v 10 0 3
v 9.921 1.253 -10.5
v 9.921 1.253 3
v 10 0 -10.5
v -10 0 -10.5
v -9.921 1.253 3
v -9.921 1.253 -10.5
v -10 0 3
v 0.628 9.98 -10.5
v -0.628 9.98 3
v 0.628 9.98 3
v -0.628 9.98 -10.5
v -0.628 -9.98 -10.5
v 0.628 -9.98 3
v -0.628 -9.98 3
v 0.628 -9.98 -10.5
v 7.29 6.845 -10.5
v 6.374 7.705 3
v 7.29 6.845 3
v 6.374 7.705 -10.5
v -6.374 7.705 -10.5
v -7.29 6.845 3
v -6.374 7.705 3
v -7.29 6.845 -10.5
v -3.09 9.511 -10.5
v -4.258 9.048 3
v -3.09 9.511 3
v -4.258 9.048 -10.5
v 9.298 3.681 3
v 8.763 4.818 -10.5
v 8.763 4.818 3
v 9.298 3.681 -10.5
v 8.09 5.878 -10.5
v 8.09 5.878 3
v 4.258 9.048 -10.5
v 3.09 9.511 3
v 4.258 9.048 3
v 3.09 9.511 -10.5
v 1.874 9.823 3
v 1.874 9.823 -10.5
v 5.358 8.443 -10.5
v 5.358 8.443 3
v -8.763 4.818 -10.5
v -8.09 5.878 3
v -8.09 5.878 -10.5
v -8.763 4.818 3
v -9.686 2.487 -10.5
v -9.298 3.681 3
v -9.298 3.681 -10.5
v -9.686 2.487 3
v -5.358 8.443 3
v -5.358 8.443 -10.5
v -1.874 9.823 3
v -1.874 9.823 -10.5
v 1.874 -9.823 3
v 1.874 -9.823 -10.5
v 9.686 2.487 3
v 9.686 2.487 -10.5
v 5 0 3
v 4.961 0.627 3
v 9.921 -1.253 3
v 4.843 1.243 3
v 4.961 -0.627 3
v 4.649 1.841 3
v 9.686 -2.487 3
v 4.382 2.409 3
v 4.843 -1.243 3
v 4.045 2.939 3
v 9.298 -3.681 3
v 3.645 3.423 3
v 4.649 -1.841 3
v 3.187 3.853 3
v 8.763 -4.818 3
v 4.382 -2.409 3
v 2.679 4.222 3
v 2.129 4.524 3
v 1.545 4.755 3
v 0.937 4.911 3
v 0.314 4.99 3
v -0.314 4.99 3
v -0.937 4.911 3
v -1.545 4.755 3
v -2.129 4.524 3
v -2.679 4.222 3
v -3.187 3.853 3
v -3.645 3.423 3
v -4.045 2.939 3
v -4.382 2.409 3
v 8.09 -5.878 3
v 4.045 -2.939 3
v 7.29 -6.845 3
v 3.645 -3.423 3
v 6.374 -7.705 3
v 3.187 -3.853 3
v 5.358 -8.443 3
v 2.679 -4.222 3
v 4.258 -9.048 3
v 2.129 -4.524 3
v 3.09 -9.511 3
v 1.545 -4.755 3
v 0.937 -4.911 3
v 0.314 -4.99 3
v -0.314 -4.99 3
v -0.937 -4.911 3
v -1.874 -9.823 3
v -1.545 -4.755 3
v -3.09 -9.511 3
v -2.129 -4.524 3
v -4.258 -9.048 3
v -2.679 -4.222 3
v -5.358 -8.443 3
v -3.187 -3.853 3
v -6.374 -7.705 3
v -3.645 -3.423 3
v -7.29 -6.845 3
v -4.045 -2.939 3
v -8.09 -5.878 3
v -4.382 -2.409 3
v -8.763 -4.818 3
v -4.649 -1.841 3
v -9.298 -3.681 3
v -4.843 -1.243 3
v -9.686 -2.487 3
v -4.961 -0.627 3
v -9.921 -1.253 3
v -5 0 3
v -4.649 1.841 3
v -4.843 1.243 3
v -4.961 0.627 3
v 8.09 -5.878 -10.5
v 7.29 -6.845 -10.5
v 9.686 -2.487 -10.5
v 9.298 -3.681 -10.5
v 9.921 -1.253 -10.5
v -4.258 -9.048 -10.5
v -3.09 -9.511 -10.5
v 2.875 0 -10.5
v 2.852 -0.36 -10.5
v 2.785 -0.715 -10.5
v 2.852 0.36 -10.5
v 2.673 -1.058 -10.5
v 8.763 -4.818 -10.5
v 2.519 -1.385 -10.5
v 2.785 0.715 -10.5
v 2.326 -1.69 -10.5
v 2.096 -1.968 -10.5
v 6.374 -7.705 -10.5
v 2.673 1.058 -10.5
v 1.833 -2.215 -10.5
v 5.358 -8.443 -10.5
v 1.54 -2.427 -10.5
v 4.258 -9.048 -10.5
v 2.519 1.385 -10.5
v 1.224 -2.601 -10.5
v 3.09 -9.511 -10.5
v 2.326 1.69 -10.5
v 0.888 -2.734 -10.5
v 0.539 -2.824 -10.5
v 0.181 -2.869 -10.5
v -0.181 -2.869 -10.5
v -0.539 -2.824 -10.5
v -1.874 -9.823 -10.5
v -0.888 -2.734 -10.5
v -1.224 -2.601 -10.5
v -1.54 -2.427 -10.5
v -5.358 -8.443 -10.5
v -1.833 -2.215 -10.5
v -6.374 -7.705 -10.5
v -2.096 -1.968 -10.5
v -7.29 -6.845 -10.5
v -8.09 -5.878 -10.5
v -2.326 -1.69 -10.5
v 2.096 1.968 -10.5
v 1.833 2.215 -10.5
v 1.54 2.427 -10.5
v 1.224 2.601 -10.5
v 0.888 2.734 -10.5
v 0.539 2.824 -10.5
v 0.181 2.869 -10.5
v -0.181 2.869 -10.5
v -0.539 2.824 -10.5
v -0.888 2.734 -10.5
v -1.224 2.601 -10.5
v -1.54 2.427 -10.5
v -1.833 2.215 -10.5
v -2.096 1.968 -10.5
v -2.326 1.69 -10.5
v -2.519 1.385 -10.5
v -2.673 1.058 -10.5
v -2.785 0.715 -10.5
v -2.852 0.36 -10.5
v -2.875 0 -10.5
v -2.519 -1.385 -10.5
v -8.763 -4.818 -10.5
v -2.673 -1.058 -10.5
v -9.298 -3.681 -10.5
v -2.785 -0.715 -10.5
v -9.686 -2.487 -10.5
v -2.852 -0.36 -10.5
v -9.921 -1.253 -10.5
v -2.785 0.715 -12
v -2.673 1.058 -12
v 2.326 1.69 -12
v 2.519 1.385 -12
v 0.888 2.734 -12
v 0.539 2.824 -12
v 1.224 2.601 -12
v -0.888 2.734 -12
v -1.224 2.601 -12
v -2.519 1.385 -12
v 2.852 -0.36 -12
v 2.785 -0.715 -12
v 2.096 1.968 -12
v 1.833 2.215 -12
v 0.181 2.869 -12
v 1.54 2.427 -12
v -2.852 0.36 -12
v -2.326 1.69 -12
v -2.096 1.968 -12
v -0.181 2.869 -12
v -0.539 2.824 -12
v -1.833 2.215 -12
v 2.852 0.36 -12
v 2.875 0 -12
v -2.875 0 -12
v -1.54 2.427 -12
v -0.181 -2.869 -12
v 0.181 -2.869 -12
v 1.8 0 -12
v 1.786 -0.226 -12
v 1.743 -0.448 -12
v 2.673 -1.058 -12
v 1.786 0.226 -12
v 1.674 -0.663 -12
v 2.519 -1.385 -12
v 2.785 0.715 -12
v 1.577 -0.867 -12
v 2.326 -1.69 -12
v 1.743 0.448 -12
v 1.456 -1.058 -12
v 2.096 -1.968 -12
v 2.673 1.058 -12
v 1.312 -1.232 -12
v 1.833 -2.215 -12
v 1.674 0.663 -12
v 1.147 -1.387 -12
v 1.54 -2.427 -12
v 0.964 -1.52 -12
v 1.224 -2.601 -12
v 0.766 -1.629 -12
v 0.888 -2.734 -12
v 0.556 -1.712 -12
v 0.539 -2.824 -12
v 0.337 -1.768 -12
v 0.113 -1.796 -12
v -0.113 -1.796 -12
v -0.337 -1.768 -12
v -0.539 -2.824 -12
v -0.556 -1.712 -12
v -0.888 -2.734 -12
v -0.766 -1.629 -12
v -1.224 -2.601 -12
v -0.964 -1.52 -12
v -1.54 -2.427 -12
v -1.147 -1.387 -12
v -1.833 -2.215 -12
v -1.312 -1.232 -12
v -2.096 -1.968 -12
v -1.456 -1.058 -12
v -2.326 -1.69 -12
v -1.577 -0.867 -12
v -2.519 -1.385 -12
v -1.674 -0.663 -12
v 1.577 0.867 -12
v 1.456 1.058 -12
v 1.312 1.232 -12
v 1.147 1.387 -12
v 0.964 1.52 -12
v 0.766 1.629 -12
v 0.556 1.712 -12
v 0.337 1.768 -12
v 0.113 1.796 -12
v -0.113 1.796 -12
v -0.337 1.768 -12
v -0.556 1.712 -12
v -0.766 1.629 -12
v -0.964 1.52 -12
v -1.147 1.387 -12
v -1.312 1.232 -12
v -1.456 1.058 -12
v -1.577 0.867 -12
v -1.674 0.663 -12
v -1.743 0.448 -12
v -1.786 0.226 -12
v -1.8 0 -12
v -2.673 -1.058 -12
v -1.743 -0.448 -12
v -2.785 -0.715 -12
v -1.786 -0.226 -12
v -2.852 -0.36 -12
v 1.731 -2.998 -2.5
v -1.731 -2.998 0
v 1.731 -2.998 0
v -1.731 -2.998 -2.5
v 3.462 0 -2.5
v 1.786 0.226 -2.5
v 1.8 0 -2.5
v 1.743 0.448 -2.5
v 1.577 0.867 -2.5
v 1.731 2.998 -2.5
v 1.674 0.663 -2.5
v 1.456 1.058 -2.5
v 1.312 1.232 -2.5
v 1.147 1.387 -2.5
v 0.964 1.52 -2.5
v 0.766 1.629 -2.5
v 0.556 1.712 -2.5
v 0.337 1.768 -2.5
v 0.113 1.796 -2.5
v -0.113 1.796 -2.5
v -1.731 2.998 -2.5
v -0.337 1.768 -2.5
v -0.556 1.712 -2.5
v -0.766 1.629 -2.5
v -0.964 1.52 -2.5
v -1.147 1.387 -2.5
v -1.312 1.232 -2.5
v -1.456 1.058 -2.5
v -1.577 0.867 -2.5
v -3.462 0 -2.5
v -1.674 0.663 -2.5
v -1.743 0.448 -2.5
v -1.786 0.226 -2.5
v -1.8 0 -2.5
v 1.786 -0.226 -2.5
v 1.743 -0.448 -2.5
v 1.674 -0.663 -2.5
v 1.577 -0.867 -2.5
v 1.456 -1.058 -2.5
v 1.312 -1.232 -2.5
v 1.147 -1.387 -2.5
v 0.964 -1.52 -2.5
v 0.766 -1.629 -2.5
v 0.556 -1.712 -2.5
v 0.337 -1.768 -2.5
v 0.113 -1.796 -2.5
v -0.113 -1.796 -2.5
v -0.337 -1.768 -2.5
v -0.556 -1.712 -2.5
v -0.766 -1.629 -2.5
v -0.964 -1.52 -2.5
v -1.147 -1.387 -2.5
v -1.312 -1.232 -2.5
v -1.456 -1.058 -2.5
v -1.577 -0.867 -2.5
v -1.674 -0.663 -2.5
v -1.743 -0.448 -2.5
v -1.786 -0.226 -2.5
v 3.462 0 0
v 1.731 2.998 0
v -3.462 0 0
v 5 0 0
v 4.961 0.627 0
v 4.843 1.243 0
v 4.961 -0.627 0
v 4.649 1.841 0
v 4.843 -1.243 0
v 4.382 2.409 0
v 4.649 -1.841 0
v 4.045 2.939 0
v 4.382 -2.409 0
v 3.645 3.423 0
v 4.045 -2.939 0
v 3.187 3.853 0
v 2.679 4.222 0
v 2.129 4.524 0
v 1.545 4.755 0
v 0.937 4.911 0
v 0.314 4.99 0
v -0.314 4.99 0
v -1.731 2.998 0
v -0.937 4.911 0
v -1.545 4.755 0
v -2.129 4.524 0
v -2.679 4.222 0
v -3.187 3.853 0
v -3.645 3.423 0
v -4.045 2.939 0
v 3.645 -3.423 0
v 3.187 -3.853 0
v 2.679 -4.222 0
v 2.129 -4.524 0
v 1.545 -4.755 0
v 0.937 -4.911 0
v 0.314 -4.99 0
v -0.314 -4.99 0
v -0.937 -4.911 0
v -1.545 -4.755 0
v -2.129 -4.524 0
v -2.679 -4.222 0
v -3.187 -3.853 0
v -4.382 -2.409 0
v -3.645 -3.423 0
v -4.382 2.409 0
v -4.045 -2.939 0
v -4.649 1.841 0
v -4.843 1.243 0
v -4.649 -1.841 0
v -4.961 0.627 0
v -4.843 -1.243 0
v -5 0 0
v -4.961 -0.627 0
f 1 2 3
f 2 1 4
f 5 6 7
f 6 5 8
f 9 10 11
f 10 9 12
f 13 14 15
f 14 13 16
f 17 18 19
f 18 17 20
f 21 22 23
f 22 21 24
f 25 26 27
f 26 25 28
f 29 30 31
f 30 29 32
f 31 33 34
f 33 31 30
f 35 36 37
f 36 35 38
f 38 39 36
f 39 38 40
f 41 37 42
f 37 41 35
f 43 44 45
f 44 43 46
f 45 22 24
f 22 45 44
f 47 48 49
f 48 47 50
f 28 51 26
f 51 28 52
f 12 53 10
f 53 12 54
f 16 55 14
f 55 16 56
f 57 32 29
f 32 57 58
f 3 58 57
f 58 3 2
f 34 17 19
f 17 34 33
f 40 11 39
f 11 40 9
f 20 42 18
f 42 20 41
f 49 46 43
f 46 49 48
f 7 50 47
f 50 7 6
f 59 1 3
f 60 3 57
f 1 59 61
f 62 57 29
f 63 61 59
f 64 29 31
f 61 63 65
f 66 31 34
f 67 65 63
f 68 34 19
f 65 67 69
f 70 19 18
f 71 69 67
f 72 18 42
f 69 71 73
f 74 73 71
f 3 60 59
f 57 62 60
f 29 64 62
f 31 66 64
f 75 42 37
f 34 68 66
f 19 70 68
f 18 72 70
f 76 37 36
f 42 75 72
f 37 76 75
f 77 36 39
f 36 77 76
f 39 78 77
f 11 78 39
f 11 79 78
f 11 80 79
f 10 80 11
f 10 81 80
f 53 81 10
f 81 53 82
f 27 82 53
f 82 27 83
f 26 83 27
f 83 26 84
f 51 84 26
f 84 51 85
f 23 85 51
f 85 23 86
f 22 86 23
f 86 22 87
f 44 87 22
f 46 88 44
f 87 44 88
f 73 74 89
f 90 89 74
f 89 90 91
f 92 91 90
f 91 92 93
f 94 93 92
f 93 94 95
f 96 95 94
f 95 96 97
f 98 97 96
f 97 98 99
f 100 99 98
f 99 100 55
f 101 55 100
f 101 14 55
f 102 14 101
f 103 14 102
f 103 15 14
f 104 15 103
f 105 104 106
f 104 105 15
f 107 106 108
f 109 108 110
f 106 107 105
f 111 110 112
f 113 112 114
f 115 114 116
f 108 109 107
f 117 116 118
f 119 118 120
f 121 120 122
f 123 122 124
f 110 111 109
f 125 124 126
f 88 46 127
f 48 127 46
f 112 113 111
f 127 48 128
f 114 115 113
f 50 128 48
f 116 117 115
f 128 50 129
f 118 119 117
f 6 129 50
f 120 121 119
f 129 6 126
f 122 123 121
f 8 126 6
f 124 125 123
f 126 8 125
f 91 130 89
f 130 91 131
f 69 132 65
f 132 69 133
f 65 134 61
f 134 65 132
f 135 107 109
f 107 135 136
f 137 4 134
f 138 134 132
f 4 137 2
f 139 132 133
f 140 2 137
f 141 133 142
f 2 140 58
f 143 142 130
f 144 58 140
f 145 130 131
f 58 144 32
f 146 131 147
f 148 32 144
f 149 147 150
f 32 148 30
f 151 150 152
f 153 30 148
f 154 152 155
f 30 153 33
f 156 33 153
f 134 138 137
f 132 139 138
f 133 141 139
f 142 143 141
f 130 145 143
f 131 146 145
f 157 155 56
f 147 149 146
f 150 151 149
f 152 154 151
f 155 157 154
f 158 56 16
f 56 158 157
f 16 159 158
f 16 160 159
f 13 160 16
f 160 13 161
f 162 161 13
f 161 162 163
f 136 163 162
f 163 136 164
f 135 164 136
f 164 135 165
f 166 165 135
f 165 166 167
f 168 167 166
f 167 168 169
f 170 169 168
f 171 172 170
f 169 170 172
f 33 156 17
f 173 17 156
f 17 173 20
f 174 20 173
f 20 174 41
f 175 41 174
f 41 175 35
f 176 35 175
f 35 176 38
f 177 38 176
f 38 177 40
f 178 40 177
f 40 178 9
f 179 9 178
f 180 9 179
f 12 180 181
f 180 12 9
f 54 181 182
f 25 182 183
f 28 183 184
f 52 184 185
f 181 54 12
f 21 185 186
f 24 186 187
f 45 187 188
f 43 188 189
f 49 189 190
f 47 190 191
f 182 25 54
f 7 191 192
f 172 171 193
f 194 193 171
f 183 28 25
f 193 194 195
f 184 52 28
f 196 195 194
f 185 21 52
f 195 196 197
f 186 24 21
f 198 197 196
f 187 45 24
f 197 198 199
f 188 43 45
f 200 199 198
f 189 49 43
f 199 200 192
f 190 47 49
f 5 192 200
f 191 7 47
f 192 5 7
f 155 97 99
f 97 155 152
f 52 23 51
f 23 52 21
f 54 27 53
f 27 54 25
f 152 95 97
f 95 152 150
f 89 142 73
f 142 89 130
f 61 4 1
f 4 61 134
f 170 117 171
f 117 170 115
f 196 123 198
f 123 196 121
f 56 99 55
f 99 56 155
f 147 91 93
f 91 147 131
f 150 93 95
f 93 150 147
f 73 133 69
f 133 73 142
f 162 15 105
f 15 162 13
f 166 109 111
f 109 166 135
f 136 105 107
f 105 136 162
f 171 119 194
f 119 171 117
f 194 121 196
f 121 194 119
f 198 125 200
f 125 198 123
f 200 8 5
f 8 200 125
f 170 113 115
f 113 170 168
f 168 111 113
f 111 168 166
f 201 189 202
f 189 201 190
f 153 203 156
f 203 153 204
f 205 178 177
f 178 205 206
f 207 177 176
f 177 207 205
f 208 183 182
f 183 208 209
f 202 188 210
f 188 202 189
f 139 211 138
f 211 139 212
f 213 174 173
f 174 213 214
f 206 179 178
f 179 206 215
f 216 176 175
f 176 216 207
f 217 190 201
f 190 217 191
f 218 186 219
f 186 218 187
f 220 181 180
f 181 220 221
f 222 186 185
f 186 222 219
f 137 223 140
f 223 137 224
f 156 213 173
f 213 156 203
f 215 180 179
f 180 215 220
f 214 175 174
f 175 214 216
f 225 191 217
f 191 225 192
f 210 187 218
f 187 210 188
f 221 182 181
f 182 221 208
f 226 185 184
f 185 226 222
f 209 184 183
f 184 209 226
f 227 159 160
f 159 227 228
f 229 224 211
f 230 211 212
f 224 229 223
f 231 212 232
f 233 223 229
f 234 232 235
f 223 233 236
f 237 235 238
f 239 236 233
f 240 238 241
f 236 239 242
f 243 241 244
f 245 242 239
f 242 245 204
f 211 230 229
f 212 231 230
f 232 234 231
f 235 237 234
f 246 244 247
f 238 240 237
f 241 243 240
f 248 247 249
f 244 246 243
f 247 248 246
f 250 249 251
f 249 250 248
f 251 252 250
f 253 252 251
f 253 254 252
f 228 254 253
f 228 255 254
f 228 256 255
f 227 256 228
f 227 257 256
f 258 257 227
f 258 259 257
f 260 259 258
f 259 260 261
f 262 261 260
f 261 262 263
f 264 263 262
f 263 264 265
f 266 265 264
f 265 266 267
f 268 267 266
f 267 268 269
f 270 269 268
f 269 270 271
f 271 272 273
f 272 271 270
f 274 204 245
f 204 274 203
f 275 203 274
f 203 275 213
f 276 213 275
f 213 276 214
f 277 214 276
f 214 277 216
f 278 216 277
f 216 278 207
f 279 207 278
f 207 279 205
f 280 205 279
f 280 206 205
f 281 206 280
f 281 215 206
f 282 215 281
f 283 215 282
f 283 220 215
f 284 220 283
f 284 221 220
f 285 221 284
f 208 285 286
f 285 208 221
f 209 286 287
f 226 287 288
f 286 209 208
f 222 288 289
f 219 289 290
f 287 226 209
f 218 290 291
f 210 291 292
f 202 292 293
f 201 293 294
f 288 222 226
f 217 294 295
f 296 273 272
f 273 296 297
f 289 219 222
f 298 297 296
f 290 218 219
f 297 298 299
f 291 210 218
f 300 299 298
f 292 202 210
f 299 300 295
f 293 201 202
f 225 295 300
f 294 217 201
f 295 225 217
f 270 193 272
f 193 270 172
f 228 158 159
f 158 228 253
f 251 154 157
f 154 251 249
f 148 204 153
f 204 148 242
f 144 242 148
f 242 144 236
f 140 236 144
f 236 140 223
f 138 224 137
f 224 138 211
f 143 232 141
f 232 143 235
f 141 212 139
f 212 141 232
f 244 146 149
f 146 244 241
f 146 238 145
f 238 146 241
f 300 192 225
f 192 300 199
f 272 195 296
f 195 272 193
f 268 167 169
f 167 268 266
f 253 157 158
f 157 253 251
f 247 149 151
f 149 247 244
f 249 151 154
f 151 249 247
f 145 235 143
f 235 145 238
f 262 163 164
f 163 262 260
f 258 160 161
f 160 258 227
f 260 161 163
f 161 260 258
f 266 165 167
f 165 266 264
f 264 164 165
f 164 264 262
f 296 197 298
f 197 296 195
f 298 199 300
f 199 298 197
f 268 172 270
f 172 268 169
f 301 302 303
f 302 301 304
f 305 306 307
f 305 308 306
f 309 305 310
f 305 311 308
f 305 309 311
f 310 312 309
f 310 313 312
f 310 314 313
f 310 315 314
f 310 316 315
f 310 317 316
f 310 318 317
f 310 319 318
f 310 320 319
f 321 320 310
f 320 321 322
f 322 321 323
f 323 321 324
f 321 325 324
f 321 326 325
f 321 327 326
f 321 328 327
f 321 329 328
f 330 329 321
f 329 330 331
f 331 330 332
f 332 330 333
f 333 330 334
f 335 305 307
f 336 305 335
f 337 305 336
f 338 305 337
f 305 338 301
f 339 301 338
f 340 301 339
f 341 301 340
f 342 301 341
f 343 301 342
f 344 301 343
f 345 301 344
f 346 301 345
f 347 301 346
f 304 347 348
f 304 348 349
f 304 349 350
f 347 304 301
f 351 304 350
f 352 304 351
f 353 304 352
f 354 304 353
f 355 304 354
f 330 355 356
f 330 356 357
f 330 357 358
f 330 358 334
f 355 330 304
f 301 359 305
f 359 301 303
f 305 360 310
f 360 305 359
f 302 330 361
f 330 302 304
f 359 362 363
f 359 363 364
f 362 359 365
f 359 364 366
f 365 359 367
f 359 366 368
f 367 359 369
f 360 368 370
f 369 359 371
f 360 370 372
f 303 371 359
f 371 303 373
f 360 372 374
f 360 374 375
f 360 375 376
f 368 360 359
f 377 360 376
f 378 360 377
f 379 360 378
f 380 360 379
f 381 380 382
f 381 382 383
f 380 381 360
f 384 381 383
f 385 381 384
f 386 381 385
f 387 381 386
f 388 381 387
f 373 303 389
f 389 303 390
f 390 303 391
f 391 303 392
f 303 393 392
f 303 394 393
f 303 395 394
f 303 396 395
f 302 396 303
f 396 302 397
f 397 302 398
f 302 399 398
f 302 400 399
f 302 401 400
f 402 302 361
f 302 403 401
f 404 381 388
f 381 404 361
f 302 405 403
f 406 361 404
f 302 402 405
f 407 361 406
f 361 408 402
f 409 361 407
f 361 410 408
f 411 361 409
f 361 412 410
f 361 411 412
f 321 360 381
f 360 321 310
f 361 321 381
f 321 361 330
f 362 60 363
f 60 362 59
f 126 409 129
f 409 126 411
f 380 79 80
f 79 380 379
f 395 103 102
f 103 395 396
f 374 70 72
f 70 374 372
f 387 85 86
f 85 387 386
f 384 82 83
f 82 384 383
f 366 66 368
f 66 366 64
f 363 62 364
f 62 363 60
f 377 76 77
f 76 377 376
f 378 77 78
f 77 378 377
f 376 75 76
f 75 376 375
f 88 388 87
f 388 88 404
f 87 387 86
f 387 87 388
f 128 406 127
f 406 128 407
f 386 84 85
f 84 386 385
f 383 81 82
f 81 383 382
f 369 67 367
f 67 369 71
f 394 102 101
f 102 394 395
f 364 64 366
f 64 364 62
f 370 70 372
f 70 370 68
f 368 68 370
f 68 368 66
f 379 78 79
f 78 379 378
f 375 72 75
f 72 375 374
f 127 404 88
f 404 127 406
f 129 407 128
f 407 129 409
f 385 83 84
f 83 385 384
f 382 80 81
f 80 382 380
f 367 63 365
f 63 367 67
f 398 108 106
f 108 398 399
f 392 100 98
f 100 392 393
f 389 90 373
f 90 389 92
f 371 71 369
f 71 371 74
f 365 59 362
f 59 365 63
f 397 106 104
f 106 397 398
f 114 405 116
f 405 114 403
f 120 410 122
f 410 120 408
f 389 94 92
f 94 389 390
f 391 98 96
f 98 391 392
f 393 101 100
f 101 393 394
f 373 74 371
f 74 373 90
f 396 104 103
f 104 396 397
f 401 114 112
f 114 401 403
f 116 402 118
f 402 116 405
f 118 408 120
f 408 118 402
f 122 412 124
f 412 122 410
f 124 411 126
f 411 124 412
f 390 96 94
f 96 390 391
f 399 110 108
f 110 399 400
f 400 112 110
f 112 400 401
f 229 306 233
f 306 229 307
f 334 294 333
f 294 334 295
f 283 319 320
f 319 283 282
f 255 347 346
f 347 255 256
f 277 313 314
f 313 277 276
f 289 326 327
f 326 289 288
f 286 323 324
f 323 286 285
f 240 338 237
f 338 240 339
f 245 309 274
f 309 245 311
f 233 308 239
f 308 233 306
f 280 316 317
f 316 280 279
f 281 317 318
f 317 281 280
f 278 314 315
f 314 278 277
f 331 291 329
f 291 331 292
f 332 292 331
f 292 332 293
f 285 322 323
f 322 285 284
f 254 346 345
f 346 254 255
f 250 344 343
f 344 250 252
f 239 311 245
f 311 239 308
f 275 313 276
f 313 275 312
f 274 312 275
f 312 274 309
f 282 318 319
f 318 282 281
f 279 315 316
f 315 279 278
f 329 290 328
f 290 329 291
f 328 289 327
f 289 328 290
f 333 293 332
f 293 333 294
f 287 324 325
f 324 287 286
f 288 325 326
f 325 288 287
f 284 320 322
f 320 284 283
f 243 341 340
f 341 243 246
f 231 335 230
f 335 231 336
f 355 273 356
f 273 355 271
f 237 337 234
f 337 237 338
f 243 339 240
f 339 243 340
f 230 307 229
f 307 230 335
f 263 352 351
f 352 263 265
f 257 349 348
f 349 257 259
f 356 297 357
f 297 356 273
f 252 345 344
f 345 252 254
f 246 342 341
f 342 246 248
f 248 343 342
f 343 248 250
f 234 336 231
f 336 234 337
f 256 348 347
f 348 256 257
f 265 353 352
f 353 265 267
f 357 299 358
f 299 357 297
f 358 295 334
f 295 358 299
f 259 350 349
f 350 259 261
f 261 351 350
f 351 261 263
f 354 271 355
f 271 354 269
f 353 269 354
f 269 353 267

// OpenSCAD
$fn = 50;


difference() {
	union() {
		translate(v = [0, 0, -10.5000000000]) {
			cylinder(h = 13.5000000000, r = 10.0000000000);
		}
		#translate(v = [0, 0, -12.0000000000]) {
			cylinder(h = 12, r = 2.8750000000);
		}
	}
	union() {
		translate(v = [0, 0, 0]) {
			rotate(a = [0, 0, 0]) {
				difference() {
					union() {
						translate(v = [0, 0, -2.5000000000]) {
							linear_extrude(height = 2.5000000000) {
								polygon(points = [[3.4620000000, 0.0000000000], [1.7310000000, 2.9981799479], [-1.7310000000, 2.9981799479], [-3.4620000000, 0.0000000000], [-1.7310000000, -2.9981799479], [1.7310000000, -2.9981799479]]);
							}
						}
					}
					union();
				}
			}
		}
		#cylinder(h = 3, r = 5.0000000000);
		#translate(v = [0, 0, -100.0000000000]) {
			cylinder(h = 200, r = 1.8000000000);
		}
	}
}
